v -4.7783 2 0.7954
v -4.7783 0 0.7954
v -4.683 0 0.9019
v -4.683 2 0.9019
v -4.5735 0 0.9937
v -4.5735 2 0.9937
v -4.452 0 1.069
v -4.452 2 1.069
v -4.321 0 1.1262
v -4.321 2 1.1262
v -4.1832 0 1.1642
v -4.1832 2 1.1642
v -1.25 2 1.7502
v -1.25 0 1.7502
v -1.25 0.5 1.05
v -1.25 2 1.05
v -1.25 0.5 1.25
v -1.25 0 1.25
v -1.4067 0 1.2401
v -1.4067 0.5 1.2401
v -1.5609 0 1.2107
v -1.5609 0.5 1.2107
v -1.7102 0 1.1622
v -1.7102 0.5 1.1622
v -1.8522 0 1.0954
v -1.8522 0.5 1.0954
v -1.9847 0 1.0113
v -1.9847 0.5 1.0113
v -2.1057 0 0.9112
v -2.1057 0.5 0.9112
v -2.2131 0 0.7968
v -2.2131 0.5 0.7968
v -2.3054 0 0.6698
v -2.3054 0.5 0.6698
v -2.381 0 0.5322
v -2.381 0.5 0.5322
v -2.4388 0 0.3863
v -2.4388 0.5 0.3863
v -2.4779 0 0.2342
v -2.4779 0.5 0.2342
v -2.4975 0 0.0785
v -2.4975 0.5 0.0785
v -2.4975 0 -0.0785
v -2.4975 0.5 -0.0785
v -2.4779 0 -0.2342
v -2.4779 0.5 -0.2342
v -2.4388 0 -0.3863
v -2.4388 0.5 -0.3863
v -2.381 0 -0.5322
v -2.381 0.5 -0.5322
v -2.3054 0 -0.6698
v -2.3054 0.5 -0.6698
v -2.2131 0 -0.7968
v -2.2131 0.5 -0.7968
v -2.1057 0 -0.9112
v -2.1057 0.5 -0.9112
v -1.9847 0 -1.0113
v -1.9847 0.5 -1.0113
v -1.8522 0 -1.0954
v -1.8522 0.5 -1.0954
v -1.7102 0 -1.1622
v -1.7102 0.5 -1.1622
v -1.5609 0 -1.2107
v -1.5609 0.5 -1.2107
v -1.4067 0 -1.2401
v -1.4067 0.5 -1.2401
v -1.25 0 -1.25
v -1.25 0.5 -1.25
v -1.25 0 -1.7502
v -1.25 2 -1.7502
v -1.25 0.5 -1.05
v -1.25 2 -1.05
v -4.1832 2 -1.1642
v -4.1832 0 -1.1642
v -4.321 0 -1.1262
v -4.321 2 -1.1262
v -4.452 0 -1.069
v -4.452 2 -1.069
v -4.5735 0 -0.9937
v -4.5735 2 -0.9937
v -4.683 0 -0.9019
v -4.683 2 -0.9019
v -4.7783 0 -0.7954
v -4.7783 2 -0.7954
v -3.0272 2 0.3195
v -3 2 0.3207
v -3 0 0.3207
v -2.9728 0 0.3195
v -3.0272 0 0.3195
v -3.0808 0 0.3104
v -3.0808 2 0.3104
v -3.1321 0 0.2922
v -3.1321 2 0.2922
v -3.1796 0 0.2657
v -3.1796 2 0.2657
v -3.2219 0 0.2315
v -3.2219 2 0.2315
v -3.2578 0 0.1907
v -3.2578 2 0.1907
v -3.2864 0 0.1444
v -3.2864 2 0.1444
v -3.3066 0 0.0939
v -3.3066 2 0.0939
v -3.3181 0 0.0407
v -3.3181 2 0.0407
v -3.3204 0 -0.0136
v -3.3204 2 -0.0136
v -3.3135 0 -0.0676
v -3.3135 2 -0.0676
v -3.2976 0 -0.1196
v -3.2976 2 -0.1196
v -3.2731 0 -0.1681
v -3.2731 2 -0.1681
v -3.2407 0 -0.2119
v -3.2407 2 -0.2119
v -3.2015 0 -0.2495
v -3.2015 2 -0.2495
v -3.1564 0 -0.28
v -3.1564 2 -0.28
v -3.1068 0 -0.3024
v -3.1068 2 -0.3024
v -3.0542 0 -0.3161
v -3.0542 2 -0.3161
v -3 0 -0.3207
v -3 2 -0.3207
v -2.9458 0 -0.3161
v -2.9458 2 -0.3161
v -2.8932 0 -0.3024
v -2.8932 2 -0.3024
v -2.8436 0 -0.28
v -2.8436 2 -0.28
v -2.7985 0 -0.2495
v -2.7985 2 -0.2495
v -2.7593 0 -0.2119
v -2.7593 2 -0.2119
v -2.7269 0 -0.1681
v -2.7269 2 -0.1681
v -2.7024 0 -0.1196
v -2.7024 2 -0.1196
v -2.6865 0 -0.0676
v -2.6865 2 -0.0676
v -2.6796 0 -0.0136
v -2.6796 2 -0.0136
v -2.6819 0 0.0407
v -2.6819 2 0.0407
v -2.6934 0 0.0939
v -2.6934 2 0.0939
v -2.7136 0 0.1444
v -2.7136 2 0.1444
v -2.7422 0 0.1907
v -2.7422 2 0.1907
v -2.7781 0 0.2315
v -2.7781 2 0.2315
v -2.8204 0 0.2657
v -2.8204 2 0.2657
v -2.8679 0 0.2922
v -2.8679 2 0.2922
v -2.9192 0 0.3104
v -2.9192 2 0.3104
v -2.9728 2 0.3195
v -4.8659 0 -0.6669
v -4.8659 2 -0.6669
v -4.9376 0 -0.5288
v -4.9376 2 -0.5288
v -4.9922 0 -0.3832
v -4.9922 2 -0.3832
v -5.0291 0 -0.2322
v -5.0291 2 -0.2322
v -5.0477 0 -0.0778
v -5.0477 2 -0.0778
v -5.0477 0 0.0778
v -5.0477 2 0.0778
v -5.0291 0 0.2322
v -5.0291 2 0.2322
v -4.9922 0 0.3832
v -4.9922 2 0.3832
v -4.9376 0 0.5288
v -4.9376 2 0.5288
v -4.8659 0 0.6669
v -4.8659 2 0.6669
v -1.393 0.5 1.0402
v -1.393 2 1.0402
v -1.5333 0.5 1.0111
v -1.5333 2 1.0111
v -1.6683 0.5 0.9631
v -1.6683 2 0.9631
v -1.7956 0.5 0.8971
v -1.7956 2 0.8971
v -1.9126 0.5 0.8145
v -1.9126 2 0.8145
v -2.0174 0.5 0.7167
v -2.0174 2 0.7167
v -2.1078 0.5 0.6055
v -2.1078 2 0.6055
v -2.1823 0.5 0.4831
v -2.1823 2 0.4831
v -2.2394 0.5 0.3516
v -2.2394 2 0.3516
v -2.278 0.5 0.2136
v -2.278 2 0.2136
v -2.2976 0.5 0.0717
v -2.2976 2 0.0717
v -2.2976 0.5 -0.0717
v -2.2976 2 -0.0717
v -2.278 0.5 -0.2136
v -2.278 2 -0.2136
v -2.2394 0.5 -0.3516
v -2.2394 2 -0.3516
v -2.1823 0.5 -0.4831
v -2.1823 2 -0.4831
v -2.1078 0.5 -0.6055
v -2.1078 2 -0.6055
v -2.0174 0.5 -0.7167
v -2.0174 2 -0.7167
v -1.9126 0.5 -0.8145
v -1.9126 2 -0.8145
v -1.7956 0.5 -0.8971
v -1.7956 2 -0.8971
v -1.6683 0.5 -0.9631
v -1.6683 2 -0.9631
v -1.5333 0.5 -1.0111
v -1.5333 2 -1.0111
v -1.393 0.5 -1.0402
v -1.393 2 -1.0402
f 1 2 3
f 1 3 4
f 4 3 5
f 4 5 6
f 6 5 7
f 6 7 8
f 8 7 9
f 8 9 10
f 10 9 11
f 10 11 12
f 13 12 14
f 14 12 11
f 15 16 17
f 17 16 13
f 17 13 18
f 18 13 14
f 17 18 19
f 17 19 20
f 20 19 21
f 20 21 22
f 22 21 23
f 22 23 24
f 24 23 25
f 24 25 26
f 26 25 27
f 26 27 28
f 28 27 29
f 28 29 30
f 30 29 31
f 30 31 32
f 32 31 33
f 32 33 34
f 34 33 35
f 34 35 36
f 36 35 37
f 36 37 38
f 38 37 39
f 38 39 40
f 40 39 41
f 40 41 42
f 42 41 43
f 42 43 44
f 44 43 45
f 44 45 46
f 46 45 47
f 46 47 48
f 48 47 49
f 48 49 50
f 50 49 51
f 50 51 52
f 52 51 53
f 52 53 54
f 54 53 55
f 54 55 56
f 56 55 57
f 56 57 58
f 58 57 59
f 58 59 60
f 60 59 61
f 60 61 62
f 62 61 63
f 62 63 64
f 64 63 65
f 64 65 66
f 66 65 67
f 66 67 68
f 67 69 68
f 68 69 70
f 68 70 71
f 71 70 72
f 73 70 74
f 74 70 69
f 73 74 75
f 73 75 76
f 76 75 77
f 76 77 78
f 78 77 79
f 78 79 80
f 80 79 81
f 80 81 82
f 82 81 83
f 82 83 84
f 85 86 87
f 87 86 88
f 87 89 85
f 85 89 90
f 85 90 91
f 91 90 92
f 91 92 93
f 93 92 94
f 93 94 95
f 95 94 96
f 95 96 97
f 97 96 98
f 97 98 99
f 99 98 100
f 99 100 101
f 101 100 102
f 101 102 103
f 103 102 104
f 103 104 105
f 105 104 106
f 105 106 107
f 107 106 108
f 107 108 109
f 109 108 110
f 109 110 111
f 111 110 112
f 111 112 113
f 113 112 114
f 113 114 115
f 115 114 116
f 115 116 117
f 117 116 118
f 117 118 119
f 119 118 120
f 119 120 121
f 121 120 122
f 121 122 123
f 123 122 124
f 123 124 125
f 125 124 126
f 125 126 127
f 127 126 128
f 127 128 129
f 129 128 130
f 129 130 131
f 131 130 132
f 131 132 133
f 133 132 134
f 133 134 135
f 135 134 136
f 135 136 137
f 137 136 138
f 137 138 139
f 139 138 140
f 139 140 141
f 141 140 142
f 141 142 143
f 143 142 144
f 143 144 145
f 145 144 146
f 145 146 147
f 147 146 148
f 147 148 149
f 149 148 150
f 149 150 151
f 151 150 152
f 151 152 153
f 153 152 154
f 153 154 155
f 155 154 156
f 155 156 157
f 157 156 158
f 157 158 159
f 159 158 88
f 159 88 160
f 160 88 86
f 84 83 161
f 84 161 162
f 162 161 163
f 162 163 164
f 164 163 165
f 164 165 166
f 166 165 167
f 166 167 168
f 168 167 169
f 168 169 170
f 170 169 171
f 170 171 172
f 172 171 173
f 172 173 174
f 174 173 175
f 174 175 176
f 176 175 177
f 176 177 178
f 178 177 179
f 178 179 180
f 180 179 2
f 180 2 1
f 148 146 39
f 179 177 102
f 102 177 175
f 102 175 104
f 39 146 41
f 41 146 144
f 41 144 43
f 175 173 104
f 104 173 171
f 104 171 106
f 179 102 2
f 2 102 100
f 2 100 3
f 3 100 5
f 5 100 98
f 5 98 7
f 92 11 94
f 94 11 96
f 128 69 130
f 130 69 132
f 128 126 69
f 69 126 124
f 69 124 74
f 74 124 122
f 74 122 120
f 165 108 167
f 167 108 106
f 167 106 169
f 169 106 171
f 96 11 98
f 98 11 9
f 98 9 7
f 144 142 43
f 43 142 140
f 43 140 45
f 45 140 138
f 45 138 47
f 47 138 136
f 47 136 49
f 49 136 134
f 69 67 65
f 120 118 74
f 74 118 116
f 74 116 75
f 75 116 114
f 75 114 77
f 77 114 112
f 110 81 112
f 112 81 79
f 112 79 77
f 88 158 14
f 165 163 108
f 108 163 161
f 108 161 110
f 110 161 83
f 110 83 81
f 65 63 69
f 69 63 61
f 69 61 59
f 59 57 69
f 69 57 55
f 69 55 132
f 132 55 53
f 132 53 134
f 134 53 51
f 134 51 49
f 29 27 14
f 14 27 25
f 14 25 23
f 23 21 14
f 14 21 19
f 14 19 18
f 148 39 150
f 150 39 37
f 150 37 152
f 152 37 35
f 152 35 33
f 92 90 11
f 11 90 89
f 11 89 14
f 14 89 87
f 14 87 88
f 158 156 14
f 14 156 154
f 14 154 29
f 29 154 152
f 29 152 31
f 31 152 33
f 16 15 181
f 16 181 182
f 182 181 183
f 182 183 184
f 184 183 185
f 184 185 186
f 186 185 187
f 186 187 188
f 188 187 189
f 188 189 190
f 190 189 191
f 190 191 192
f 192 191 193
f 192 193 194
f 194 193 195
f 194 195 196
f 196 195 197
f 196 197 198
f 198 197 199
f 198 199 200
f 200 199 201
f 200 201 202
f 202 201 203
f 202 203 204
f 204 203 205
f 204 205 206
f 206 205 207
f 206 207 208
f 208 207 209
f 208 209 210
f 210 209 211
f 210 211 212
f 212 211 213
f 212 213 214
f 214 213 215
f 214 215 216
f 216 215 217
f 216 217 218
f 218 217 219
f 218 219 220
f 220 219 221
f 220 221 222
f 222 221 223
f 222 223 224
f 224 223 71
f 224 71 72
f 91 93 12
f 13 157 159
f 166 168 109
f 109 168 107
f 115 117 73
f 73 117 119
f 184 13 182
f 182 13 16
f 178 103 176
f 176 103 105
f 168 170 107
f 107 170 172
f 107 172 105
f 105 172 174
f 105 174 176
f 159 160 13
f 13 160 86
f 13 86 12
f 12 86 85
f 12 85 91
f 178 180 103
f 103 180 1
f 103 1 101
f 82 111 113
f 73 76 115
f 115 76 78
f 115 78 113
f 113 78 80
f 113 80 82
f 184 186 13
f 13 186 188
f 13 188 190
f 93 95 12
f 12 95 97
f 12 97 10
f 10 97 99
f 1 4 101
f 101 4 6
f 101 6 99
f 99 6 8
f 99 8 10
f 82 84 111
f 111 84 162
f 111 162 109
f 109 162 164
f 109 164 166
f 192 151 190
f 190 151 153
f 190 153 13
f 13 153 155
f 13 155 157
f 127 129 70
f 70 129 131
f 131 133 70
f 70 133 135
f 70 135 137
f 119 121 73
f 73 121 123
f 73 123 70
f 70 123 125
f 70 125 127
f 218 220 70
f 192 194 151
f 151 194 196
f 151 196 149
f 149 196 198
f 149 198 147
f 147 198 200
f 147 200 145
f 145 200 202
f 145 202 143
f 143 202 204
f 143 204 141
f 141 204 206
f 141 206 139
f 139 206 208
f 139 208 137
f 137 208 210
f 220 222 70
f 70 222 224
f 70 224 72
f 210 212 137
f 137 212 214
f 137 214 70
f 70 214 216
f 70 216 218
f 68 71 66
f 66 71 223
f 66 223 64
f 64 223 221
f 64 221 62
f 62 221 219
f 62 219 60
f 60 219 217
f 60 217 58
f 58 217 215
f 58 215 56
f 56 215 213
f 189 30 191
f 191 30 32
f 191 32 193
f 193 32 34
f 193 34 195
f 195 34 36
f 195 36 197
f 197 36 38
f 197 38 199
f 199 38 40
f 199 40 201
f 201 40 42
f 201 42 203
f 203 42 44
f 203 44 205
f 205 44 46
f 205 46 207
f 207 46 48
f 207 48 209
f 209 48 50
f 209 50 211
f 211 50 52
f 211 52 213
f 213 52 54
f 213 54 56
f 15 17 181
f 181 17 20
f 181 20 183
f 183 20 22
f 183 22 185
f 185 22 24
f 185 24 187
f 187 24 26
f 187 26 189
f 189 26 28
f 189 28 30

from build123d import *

# Parameters (mm, degrees)
SKETCH1_R           = 0.3207
BOSS_EXTRUDE1_DEPTH = 0.5
BOSS_EXTRUDE3_START = 0.5
SKETCH1_20_R        = 0.3207
BOSS_EXTRUDE3_DEPTH = 1.5


with BuildPart() as part:
    # Sketch1 → Boss-Extrude1 (new body)
    with BuildSketch(Plane(origin=(0, 0, 0), x_dir=(1, 0, 0), z_dir=(0, 1, 0))):
        with BuildLine():
            Line((-1.25, 1.25), (-1.25, 1.750241174))
            Line((-1.25, 1.750241174), (-4.183235691, 1.164159973))
            ThreePointArc((-4.183235691, 1.164159973), (-4.514100231, 1.033532975), (-4.77830642, 0.795352694))
            ThreePointArc((-4.77830642, 0.795352694), (-5.05, 0), (-4.77830642, -0.795352694))
            ThreePointArc((-4.77830642, -0.795352694), (-4.514100231, -1.033532975), (-4.183235691, -1.164159973))
            Line((-4.183235691, -1.164159973), (-1.25, -1.750241174))
            Line((-1.25, -1.750241174), (-1.25, -1.25))
            ThreePointArc((-1.25, -1.25), (-2.5, 0), (-1.25, 1.25))
        make_face()
        with Locations((-3, 0)):
            Circle(SKETCH1_R, mode=Mode.SUBTRACT)
    extrude(amount=BOSS_EXTRUDE1_DEPTH)

    # Sketch1<20> → Boss-Extrude3 (add)
    with BuildSketch(Plane(origin=(0, 0, 0), x_dir=(1, 0, 0), z_dir=(0, 1, 0)).offset(BOSS_EXTRUDE3_START)):
        with BuildLine():
            Line((-1.25, 1.750241174), (-4.183235691, 1.164159973))
            ThreePointArc((-4.183235691, 1.164159973), (-4.514100231, 1.033532975), (-4.77830642, 0.795352694))
            ThreePointArc((-4.77830642, 0.795352694), (-5.05, 0), (-4.77830642, -0.795352694))
            ThreePointArc((-4.77830642, -0.795352694), (-4.514100231, -1.033532975), (-4.183235691, -1.164159973))
            Line((-4.183235691, -1.164159973), (-1.25, -1.750241174))
            Line((-1.25, -1.750241174), (-1.25, -1.05))
            ThreePointArc((-1.25, -1.05), (-2.3, 0), (-1.25, 1.05))
            Line((-1.25, 1.05), (-1.25, 1.750241174))
        make_face()
        with Locations((-3, 0)):
            Circle(SKETCH1_20_R, mode=Mode.SUBTRACT)
    extrude(amount=BOSS_EXTRUDE3_DEPTH)


solid = part.part
